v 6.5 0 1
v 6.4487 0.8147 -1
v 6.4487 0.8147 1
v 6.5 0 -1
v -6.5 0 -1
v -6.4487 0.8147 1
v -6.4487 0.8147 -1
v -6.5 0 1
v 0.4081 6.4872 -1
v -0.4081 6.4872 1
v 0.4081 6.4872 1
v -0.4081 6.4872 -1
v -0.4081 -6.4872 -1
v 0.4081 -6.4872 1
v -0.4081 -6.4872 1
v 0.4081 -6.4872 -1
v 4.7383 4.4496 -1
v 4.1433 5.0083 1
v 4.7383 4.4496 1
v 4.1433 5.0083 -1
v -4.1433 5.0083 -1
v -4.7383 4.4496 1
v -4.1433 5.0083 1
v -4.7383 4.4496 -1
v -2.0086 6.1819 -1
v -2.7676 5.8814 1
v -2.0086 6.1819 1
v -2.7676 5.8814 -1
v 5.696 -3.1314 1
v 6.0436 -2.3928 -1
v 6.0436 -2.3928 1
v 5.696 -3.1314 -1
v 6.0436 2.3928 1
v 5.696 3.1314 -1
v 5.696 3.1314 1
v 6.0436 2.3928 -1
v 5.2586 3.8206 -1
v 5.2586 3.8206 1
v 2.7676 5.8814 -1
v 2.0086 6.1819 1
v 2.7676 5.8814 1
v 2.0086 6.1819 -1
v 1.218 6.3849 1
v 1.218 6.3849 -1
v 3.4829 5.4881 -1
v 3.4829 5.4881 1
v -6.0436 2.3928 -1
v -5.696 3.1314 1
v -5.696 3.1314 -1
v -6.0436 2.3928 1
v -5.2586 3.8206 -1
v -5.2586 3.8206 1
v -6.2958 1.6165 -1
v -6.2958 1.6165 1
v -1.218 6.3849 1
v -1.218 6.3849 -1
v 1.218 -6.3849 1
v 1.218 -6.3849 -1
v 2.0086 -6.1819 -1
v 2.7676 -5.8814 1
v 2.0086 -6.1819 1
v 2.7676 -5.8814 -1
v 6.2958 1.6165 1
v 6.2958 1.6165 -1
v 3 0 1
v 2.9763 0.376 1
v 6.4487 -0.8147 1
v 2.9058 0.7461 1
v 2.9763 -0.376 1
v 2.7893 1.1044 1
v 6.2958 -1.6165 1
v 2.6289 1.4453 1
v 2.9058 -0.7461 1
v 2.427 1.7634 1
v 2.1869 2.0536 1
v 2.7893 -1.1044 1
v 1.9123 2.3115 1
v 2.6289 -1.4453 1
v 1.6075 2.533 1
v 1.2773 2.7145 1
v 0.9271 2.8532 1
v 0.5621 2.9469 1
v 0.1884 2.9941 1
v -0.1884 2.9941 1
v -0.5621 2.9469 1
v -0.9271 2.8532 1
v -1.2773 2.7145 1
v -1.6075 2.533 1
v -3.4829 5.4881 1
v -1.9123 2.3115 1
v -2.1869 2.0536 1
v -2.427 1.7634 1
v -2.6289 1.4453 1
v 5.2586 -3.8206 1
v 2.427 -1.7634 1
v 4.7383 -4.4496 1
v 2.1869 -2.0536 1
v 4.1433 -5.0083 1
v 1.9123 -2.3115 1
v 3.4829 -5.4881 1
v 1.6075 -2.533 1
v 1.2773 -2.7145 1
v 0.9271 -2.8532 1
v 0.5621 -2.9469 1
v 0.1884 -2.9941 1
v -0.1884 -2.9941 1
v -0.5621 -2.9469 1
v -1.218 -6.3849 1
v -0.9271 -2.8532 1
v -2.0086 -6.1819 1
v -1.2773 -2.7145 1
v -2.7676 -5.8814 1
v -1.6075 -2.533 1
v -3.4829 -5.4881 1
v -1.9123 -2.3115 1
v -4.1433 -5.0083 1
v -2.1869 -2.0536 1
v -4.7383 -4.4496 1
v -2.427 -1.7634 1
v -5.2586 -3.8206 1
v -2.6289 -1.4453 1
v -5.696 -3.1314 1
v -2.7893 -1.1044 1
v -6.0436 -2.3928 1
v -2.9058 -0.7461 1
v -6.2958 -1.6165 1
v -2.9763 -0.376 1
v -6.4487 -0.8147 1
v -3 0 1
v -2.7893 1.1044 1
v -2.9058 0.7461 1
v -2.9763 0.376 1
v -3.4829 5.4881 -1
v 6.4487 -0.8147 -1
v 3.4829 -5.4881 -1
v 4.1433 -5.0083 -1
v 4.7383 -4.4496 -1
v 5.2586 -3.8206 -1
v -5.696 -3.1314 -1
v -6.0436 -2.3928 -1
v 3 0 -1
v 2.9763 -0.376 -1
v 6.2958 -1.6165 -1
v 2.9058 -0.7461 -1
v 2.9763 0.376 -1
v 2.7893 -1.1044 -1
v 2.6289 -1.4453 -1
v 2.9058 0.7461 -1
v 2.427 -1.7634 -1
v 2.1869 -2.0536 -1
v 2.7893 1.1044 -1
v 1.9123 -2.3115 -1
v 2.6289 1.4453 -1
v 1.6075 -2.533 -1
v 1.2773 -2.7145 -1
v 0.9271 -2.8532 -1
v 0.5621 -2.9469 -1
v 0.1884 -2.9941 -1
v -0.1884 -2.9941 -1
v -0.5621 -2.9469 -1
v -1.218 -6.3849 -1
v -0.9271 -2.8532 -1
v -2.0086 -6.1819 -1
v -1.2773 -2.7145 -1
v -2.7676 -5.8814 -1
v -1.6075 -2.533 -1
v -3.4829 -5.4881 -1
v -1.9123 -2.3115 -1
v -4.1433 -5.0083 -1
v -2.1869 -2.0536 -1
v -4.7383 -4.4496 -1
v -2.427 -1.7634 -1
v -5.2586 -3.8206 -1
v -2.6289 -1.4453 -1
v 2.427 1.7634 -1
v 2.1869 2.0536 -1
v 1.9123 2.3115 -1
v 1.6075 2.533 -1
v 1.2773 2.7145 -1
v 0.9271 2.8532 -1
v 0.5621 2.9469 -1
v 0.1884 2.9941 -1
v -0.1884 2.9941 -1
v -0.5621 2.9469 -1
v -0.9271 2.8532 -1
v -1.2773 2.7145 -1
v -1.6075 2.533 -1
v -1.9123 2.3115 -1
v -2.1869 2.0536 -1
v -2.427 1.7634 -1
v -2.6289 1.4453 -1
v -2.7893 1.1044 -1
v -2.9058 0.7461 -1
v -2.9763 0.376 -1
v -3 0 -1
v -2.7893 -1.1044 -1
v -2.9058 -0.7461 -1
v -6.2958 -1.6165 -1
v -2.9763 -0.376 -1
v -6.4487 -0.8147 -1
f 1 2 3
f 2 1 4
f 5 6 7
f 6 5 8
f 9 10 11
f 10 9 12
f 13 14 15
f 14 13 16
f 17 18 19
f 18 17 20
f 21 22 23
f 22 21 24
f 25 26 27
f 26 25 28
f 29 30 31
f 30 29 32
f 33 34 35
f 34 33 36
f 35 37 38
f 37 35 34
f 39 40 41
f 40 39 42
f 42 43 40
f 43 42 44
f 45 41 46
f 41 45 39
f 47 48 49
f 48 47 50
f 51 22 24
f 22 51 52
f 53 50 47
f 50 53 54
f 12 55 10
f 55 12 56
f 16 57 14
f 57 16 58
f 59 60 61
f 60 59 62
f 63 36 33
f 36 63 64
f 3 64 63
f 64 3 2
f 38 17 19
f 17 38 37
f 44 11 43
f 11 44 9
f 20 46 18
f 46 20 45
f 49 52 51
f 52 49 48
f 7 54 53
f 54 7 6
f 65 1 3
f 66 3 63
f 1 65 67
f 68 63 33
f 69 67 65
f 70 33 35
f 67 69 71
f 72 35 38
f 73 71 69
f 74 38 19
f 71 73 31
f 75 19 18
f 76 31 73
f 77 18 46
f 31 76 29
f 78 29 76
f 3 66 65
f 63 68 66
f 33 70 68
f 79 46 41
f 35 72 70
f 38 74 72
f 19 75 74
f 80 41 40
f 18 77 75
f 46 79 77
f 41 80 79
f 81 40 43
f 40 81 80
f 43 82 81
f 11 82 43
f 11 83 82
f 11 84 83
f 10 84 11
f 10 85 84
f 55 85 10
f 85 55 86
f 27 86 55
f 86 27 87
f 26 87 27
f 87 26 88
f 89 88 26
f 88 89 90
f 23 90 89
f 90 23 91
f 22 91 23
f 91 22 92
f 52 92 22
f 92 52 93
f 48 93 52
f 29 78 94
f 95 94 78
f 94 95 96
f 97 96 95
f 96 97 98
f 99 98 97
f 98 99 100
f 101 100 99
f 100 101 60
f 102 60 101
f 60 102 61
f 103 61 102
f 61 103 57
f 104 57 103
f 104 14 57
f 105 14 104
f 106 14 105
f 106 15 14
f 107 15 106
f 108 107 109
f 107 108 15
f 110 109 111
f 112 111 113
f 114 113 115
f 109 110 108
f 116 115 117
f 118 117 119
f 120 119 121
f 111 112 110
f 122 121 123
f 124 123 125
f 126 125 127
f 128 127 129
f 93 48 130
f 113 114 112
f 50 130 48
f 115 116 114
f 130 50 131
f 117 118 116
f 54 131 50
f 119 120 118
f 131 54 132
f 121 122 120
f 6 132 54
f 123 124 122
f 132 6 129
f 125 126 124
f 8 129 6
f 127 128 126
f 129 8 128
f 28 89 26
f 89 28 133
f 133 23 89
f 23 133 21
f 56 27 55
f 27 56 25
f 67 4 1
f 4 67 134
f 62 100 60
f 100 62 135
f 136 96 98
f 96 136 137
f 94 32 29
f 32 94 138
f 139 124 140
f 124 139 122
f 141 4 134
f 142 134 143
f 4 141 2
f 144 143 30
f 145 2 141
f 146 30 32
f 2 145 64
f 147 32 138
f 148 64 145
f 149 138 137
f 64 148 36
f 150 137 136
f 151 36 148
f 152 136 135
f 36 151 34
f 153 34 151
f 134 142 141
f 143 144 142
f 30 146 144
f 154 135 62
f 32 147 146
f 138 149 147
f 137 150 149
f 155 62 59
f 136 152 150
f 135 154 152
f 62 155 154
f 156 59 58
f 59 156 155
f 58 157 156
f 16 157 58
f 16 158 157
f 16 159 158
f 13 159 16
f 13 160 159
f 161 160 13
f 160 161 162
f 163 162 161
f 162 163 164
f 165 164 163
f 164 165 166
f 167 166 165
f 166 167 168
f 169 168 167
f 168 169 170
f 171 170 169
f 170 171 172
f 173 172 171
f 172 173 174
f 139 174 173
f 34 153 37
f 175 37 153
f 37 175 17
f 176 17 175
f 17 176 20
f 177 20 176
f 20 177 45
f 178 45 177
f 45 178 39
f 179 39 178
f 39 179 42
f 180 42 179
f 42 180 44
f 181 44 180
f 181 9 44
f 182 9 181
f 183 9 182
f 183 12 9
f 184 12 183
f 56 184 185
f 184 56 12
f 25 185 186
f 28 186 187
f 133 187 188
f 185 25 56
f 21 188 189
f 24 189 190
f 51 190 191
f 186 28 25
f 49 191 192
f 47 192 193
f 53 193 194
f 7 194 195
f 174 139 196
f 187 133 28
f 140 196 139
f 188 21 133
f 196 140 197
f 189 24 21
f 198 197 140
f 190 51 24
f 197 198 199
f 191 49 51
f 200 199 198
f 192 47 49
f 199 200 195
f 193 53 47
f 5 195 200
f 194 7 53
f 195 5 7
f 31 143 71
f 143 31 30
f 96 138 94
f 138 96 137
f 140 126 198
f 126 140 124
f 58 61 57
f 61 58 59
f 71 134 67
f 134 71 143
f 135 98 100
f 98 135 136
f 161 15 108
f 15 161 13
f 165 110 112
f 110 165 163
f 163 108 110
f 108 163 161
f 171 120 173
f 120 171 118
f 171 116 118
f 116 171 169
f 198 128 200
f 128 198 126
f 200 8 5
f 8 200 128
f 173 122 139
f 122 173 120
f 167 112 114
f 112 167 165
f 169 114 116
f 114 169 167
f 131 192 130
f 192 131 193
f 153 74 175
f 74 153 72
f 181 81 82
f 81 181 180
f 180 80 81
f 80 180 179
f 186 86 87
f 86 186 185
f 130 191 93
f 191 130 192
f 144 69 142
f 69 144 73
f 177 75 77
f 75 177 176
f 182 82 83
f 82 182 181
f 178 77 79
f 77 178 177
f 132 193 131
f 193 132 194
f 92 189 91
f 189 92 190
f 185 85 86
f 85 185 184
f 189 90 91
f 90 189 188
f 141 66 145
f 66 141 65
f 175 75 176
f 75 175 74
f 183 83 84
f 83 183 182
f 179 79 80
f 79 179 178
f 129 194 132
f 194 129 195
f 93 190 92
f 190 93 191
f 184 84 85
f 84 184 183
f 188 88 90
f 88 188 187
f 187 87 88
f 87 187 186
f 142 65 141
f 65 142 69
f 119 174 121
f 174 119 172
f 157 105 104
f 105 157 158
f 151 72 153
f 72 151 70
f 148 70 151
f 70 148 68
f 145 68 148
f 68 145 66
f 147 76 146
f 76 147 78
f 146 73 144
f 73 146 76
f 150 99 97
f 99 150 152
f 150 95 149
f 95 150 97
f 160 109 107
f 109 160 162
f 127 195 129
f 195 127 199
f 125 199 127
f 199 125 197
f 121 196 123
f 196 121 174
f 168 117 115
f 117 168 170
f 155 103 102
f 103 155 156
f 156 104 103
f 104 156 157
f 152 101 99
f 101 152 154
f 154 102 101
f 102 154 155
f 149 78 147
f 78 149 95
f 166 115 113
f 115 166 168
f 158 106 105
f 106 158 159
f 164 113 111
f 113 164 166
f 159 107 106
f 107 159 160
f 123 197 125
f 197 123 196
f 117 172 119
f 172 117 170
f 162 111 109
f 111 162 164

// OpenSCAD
$fn = 50;


difference() {
	union() {
		translate(v = [0, 0, -1.0000000000]) {
			cylinder(h = 2, r = 6.5000000000);
		}
	}
	union() {
		translate(v = [0, 0, -100.0000000000]) {
			cylinder(h = 200, r = 3);
		}
	}
}
